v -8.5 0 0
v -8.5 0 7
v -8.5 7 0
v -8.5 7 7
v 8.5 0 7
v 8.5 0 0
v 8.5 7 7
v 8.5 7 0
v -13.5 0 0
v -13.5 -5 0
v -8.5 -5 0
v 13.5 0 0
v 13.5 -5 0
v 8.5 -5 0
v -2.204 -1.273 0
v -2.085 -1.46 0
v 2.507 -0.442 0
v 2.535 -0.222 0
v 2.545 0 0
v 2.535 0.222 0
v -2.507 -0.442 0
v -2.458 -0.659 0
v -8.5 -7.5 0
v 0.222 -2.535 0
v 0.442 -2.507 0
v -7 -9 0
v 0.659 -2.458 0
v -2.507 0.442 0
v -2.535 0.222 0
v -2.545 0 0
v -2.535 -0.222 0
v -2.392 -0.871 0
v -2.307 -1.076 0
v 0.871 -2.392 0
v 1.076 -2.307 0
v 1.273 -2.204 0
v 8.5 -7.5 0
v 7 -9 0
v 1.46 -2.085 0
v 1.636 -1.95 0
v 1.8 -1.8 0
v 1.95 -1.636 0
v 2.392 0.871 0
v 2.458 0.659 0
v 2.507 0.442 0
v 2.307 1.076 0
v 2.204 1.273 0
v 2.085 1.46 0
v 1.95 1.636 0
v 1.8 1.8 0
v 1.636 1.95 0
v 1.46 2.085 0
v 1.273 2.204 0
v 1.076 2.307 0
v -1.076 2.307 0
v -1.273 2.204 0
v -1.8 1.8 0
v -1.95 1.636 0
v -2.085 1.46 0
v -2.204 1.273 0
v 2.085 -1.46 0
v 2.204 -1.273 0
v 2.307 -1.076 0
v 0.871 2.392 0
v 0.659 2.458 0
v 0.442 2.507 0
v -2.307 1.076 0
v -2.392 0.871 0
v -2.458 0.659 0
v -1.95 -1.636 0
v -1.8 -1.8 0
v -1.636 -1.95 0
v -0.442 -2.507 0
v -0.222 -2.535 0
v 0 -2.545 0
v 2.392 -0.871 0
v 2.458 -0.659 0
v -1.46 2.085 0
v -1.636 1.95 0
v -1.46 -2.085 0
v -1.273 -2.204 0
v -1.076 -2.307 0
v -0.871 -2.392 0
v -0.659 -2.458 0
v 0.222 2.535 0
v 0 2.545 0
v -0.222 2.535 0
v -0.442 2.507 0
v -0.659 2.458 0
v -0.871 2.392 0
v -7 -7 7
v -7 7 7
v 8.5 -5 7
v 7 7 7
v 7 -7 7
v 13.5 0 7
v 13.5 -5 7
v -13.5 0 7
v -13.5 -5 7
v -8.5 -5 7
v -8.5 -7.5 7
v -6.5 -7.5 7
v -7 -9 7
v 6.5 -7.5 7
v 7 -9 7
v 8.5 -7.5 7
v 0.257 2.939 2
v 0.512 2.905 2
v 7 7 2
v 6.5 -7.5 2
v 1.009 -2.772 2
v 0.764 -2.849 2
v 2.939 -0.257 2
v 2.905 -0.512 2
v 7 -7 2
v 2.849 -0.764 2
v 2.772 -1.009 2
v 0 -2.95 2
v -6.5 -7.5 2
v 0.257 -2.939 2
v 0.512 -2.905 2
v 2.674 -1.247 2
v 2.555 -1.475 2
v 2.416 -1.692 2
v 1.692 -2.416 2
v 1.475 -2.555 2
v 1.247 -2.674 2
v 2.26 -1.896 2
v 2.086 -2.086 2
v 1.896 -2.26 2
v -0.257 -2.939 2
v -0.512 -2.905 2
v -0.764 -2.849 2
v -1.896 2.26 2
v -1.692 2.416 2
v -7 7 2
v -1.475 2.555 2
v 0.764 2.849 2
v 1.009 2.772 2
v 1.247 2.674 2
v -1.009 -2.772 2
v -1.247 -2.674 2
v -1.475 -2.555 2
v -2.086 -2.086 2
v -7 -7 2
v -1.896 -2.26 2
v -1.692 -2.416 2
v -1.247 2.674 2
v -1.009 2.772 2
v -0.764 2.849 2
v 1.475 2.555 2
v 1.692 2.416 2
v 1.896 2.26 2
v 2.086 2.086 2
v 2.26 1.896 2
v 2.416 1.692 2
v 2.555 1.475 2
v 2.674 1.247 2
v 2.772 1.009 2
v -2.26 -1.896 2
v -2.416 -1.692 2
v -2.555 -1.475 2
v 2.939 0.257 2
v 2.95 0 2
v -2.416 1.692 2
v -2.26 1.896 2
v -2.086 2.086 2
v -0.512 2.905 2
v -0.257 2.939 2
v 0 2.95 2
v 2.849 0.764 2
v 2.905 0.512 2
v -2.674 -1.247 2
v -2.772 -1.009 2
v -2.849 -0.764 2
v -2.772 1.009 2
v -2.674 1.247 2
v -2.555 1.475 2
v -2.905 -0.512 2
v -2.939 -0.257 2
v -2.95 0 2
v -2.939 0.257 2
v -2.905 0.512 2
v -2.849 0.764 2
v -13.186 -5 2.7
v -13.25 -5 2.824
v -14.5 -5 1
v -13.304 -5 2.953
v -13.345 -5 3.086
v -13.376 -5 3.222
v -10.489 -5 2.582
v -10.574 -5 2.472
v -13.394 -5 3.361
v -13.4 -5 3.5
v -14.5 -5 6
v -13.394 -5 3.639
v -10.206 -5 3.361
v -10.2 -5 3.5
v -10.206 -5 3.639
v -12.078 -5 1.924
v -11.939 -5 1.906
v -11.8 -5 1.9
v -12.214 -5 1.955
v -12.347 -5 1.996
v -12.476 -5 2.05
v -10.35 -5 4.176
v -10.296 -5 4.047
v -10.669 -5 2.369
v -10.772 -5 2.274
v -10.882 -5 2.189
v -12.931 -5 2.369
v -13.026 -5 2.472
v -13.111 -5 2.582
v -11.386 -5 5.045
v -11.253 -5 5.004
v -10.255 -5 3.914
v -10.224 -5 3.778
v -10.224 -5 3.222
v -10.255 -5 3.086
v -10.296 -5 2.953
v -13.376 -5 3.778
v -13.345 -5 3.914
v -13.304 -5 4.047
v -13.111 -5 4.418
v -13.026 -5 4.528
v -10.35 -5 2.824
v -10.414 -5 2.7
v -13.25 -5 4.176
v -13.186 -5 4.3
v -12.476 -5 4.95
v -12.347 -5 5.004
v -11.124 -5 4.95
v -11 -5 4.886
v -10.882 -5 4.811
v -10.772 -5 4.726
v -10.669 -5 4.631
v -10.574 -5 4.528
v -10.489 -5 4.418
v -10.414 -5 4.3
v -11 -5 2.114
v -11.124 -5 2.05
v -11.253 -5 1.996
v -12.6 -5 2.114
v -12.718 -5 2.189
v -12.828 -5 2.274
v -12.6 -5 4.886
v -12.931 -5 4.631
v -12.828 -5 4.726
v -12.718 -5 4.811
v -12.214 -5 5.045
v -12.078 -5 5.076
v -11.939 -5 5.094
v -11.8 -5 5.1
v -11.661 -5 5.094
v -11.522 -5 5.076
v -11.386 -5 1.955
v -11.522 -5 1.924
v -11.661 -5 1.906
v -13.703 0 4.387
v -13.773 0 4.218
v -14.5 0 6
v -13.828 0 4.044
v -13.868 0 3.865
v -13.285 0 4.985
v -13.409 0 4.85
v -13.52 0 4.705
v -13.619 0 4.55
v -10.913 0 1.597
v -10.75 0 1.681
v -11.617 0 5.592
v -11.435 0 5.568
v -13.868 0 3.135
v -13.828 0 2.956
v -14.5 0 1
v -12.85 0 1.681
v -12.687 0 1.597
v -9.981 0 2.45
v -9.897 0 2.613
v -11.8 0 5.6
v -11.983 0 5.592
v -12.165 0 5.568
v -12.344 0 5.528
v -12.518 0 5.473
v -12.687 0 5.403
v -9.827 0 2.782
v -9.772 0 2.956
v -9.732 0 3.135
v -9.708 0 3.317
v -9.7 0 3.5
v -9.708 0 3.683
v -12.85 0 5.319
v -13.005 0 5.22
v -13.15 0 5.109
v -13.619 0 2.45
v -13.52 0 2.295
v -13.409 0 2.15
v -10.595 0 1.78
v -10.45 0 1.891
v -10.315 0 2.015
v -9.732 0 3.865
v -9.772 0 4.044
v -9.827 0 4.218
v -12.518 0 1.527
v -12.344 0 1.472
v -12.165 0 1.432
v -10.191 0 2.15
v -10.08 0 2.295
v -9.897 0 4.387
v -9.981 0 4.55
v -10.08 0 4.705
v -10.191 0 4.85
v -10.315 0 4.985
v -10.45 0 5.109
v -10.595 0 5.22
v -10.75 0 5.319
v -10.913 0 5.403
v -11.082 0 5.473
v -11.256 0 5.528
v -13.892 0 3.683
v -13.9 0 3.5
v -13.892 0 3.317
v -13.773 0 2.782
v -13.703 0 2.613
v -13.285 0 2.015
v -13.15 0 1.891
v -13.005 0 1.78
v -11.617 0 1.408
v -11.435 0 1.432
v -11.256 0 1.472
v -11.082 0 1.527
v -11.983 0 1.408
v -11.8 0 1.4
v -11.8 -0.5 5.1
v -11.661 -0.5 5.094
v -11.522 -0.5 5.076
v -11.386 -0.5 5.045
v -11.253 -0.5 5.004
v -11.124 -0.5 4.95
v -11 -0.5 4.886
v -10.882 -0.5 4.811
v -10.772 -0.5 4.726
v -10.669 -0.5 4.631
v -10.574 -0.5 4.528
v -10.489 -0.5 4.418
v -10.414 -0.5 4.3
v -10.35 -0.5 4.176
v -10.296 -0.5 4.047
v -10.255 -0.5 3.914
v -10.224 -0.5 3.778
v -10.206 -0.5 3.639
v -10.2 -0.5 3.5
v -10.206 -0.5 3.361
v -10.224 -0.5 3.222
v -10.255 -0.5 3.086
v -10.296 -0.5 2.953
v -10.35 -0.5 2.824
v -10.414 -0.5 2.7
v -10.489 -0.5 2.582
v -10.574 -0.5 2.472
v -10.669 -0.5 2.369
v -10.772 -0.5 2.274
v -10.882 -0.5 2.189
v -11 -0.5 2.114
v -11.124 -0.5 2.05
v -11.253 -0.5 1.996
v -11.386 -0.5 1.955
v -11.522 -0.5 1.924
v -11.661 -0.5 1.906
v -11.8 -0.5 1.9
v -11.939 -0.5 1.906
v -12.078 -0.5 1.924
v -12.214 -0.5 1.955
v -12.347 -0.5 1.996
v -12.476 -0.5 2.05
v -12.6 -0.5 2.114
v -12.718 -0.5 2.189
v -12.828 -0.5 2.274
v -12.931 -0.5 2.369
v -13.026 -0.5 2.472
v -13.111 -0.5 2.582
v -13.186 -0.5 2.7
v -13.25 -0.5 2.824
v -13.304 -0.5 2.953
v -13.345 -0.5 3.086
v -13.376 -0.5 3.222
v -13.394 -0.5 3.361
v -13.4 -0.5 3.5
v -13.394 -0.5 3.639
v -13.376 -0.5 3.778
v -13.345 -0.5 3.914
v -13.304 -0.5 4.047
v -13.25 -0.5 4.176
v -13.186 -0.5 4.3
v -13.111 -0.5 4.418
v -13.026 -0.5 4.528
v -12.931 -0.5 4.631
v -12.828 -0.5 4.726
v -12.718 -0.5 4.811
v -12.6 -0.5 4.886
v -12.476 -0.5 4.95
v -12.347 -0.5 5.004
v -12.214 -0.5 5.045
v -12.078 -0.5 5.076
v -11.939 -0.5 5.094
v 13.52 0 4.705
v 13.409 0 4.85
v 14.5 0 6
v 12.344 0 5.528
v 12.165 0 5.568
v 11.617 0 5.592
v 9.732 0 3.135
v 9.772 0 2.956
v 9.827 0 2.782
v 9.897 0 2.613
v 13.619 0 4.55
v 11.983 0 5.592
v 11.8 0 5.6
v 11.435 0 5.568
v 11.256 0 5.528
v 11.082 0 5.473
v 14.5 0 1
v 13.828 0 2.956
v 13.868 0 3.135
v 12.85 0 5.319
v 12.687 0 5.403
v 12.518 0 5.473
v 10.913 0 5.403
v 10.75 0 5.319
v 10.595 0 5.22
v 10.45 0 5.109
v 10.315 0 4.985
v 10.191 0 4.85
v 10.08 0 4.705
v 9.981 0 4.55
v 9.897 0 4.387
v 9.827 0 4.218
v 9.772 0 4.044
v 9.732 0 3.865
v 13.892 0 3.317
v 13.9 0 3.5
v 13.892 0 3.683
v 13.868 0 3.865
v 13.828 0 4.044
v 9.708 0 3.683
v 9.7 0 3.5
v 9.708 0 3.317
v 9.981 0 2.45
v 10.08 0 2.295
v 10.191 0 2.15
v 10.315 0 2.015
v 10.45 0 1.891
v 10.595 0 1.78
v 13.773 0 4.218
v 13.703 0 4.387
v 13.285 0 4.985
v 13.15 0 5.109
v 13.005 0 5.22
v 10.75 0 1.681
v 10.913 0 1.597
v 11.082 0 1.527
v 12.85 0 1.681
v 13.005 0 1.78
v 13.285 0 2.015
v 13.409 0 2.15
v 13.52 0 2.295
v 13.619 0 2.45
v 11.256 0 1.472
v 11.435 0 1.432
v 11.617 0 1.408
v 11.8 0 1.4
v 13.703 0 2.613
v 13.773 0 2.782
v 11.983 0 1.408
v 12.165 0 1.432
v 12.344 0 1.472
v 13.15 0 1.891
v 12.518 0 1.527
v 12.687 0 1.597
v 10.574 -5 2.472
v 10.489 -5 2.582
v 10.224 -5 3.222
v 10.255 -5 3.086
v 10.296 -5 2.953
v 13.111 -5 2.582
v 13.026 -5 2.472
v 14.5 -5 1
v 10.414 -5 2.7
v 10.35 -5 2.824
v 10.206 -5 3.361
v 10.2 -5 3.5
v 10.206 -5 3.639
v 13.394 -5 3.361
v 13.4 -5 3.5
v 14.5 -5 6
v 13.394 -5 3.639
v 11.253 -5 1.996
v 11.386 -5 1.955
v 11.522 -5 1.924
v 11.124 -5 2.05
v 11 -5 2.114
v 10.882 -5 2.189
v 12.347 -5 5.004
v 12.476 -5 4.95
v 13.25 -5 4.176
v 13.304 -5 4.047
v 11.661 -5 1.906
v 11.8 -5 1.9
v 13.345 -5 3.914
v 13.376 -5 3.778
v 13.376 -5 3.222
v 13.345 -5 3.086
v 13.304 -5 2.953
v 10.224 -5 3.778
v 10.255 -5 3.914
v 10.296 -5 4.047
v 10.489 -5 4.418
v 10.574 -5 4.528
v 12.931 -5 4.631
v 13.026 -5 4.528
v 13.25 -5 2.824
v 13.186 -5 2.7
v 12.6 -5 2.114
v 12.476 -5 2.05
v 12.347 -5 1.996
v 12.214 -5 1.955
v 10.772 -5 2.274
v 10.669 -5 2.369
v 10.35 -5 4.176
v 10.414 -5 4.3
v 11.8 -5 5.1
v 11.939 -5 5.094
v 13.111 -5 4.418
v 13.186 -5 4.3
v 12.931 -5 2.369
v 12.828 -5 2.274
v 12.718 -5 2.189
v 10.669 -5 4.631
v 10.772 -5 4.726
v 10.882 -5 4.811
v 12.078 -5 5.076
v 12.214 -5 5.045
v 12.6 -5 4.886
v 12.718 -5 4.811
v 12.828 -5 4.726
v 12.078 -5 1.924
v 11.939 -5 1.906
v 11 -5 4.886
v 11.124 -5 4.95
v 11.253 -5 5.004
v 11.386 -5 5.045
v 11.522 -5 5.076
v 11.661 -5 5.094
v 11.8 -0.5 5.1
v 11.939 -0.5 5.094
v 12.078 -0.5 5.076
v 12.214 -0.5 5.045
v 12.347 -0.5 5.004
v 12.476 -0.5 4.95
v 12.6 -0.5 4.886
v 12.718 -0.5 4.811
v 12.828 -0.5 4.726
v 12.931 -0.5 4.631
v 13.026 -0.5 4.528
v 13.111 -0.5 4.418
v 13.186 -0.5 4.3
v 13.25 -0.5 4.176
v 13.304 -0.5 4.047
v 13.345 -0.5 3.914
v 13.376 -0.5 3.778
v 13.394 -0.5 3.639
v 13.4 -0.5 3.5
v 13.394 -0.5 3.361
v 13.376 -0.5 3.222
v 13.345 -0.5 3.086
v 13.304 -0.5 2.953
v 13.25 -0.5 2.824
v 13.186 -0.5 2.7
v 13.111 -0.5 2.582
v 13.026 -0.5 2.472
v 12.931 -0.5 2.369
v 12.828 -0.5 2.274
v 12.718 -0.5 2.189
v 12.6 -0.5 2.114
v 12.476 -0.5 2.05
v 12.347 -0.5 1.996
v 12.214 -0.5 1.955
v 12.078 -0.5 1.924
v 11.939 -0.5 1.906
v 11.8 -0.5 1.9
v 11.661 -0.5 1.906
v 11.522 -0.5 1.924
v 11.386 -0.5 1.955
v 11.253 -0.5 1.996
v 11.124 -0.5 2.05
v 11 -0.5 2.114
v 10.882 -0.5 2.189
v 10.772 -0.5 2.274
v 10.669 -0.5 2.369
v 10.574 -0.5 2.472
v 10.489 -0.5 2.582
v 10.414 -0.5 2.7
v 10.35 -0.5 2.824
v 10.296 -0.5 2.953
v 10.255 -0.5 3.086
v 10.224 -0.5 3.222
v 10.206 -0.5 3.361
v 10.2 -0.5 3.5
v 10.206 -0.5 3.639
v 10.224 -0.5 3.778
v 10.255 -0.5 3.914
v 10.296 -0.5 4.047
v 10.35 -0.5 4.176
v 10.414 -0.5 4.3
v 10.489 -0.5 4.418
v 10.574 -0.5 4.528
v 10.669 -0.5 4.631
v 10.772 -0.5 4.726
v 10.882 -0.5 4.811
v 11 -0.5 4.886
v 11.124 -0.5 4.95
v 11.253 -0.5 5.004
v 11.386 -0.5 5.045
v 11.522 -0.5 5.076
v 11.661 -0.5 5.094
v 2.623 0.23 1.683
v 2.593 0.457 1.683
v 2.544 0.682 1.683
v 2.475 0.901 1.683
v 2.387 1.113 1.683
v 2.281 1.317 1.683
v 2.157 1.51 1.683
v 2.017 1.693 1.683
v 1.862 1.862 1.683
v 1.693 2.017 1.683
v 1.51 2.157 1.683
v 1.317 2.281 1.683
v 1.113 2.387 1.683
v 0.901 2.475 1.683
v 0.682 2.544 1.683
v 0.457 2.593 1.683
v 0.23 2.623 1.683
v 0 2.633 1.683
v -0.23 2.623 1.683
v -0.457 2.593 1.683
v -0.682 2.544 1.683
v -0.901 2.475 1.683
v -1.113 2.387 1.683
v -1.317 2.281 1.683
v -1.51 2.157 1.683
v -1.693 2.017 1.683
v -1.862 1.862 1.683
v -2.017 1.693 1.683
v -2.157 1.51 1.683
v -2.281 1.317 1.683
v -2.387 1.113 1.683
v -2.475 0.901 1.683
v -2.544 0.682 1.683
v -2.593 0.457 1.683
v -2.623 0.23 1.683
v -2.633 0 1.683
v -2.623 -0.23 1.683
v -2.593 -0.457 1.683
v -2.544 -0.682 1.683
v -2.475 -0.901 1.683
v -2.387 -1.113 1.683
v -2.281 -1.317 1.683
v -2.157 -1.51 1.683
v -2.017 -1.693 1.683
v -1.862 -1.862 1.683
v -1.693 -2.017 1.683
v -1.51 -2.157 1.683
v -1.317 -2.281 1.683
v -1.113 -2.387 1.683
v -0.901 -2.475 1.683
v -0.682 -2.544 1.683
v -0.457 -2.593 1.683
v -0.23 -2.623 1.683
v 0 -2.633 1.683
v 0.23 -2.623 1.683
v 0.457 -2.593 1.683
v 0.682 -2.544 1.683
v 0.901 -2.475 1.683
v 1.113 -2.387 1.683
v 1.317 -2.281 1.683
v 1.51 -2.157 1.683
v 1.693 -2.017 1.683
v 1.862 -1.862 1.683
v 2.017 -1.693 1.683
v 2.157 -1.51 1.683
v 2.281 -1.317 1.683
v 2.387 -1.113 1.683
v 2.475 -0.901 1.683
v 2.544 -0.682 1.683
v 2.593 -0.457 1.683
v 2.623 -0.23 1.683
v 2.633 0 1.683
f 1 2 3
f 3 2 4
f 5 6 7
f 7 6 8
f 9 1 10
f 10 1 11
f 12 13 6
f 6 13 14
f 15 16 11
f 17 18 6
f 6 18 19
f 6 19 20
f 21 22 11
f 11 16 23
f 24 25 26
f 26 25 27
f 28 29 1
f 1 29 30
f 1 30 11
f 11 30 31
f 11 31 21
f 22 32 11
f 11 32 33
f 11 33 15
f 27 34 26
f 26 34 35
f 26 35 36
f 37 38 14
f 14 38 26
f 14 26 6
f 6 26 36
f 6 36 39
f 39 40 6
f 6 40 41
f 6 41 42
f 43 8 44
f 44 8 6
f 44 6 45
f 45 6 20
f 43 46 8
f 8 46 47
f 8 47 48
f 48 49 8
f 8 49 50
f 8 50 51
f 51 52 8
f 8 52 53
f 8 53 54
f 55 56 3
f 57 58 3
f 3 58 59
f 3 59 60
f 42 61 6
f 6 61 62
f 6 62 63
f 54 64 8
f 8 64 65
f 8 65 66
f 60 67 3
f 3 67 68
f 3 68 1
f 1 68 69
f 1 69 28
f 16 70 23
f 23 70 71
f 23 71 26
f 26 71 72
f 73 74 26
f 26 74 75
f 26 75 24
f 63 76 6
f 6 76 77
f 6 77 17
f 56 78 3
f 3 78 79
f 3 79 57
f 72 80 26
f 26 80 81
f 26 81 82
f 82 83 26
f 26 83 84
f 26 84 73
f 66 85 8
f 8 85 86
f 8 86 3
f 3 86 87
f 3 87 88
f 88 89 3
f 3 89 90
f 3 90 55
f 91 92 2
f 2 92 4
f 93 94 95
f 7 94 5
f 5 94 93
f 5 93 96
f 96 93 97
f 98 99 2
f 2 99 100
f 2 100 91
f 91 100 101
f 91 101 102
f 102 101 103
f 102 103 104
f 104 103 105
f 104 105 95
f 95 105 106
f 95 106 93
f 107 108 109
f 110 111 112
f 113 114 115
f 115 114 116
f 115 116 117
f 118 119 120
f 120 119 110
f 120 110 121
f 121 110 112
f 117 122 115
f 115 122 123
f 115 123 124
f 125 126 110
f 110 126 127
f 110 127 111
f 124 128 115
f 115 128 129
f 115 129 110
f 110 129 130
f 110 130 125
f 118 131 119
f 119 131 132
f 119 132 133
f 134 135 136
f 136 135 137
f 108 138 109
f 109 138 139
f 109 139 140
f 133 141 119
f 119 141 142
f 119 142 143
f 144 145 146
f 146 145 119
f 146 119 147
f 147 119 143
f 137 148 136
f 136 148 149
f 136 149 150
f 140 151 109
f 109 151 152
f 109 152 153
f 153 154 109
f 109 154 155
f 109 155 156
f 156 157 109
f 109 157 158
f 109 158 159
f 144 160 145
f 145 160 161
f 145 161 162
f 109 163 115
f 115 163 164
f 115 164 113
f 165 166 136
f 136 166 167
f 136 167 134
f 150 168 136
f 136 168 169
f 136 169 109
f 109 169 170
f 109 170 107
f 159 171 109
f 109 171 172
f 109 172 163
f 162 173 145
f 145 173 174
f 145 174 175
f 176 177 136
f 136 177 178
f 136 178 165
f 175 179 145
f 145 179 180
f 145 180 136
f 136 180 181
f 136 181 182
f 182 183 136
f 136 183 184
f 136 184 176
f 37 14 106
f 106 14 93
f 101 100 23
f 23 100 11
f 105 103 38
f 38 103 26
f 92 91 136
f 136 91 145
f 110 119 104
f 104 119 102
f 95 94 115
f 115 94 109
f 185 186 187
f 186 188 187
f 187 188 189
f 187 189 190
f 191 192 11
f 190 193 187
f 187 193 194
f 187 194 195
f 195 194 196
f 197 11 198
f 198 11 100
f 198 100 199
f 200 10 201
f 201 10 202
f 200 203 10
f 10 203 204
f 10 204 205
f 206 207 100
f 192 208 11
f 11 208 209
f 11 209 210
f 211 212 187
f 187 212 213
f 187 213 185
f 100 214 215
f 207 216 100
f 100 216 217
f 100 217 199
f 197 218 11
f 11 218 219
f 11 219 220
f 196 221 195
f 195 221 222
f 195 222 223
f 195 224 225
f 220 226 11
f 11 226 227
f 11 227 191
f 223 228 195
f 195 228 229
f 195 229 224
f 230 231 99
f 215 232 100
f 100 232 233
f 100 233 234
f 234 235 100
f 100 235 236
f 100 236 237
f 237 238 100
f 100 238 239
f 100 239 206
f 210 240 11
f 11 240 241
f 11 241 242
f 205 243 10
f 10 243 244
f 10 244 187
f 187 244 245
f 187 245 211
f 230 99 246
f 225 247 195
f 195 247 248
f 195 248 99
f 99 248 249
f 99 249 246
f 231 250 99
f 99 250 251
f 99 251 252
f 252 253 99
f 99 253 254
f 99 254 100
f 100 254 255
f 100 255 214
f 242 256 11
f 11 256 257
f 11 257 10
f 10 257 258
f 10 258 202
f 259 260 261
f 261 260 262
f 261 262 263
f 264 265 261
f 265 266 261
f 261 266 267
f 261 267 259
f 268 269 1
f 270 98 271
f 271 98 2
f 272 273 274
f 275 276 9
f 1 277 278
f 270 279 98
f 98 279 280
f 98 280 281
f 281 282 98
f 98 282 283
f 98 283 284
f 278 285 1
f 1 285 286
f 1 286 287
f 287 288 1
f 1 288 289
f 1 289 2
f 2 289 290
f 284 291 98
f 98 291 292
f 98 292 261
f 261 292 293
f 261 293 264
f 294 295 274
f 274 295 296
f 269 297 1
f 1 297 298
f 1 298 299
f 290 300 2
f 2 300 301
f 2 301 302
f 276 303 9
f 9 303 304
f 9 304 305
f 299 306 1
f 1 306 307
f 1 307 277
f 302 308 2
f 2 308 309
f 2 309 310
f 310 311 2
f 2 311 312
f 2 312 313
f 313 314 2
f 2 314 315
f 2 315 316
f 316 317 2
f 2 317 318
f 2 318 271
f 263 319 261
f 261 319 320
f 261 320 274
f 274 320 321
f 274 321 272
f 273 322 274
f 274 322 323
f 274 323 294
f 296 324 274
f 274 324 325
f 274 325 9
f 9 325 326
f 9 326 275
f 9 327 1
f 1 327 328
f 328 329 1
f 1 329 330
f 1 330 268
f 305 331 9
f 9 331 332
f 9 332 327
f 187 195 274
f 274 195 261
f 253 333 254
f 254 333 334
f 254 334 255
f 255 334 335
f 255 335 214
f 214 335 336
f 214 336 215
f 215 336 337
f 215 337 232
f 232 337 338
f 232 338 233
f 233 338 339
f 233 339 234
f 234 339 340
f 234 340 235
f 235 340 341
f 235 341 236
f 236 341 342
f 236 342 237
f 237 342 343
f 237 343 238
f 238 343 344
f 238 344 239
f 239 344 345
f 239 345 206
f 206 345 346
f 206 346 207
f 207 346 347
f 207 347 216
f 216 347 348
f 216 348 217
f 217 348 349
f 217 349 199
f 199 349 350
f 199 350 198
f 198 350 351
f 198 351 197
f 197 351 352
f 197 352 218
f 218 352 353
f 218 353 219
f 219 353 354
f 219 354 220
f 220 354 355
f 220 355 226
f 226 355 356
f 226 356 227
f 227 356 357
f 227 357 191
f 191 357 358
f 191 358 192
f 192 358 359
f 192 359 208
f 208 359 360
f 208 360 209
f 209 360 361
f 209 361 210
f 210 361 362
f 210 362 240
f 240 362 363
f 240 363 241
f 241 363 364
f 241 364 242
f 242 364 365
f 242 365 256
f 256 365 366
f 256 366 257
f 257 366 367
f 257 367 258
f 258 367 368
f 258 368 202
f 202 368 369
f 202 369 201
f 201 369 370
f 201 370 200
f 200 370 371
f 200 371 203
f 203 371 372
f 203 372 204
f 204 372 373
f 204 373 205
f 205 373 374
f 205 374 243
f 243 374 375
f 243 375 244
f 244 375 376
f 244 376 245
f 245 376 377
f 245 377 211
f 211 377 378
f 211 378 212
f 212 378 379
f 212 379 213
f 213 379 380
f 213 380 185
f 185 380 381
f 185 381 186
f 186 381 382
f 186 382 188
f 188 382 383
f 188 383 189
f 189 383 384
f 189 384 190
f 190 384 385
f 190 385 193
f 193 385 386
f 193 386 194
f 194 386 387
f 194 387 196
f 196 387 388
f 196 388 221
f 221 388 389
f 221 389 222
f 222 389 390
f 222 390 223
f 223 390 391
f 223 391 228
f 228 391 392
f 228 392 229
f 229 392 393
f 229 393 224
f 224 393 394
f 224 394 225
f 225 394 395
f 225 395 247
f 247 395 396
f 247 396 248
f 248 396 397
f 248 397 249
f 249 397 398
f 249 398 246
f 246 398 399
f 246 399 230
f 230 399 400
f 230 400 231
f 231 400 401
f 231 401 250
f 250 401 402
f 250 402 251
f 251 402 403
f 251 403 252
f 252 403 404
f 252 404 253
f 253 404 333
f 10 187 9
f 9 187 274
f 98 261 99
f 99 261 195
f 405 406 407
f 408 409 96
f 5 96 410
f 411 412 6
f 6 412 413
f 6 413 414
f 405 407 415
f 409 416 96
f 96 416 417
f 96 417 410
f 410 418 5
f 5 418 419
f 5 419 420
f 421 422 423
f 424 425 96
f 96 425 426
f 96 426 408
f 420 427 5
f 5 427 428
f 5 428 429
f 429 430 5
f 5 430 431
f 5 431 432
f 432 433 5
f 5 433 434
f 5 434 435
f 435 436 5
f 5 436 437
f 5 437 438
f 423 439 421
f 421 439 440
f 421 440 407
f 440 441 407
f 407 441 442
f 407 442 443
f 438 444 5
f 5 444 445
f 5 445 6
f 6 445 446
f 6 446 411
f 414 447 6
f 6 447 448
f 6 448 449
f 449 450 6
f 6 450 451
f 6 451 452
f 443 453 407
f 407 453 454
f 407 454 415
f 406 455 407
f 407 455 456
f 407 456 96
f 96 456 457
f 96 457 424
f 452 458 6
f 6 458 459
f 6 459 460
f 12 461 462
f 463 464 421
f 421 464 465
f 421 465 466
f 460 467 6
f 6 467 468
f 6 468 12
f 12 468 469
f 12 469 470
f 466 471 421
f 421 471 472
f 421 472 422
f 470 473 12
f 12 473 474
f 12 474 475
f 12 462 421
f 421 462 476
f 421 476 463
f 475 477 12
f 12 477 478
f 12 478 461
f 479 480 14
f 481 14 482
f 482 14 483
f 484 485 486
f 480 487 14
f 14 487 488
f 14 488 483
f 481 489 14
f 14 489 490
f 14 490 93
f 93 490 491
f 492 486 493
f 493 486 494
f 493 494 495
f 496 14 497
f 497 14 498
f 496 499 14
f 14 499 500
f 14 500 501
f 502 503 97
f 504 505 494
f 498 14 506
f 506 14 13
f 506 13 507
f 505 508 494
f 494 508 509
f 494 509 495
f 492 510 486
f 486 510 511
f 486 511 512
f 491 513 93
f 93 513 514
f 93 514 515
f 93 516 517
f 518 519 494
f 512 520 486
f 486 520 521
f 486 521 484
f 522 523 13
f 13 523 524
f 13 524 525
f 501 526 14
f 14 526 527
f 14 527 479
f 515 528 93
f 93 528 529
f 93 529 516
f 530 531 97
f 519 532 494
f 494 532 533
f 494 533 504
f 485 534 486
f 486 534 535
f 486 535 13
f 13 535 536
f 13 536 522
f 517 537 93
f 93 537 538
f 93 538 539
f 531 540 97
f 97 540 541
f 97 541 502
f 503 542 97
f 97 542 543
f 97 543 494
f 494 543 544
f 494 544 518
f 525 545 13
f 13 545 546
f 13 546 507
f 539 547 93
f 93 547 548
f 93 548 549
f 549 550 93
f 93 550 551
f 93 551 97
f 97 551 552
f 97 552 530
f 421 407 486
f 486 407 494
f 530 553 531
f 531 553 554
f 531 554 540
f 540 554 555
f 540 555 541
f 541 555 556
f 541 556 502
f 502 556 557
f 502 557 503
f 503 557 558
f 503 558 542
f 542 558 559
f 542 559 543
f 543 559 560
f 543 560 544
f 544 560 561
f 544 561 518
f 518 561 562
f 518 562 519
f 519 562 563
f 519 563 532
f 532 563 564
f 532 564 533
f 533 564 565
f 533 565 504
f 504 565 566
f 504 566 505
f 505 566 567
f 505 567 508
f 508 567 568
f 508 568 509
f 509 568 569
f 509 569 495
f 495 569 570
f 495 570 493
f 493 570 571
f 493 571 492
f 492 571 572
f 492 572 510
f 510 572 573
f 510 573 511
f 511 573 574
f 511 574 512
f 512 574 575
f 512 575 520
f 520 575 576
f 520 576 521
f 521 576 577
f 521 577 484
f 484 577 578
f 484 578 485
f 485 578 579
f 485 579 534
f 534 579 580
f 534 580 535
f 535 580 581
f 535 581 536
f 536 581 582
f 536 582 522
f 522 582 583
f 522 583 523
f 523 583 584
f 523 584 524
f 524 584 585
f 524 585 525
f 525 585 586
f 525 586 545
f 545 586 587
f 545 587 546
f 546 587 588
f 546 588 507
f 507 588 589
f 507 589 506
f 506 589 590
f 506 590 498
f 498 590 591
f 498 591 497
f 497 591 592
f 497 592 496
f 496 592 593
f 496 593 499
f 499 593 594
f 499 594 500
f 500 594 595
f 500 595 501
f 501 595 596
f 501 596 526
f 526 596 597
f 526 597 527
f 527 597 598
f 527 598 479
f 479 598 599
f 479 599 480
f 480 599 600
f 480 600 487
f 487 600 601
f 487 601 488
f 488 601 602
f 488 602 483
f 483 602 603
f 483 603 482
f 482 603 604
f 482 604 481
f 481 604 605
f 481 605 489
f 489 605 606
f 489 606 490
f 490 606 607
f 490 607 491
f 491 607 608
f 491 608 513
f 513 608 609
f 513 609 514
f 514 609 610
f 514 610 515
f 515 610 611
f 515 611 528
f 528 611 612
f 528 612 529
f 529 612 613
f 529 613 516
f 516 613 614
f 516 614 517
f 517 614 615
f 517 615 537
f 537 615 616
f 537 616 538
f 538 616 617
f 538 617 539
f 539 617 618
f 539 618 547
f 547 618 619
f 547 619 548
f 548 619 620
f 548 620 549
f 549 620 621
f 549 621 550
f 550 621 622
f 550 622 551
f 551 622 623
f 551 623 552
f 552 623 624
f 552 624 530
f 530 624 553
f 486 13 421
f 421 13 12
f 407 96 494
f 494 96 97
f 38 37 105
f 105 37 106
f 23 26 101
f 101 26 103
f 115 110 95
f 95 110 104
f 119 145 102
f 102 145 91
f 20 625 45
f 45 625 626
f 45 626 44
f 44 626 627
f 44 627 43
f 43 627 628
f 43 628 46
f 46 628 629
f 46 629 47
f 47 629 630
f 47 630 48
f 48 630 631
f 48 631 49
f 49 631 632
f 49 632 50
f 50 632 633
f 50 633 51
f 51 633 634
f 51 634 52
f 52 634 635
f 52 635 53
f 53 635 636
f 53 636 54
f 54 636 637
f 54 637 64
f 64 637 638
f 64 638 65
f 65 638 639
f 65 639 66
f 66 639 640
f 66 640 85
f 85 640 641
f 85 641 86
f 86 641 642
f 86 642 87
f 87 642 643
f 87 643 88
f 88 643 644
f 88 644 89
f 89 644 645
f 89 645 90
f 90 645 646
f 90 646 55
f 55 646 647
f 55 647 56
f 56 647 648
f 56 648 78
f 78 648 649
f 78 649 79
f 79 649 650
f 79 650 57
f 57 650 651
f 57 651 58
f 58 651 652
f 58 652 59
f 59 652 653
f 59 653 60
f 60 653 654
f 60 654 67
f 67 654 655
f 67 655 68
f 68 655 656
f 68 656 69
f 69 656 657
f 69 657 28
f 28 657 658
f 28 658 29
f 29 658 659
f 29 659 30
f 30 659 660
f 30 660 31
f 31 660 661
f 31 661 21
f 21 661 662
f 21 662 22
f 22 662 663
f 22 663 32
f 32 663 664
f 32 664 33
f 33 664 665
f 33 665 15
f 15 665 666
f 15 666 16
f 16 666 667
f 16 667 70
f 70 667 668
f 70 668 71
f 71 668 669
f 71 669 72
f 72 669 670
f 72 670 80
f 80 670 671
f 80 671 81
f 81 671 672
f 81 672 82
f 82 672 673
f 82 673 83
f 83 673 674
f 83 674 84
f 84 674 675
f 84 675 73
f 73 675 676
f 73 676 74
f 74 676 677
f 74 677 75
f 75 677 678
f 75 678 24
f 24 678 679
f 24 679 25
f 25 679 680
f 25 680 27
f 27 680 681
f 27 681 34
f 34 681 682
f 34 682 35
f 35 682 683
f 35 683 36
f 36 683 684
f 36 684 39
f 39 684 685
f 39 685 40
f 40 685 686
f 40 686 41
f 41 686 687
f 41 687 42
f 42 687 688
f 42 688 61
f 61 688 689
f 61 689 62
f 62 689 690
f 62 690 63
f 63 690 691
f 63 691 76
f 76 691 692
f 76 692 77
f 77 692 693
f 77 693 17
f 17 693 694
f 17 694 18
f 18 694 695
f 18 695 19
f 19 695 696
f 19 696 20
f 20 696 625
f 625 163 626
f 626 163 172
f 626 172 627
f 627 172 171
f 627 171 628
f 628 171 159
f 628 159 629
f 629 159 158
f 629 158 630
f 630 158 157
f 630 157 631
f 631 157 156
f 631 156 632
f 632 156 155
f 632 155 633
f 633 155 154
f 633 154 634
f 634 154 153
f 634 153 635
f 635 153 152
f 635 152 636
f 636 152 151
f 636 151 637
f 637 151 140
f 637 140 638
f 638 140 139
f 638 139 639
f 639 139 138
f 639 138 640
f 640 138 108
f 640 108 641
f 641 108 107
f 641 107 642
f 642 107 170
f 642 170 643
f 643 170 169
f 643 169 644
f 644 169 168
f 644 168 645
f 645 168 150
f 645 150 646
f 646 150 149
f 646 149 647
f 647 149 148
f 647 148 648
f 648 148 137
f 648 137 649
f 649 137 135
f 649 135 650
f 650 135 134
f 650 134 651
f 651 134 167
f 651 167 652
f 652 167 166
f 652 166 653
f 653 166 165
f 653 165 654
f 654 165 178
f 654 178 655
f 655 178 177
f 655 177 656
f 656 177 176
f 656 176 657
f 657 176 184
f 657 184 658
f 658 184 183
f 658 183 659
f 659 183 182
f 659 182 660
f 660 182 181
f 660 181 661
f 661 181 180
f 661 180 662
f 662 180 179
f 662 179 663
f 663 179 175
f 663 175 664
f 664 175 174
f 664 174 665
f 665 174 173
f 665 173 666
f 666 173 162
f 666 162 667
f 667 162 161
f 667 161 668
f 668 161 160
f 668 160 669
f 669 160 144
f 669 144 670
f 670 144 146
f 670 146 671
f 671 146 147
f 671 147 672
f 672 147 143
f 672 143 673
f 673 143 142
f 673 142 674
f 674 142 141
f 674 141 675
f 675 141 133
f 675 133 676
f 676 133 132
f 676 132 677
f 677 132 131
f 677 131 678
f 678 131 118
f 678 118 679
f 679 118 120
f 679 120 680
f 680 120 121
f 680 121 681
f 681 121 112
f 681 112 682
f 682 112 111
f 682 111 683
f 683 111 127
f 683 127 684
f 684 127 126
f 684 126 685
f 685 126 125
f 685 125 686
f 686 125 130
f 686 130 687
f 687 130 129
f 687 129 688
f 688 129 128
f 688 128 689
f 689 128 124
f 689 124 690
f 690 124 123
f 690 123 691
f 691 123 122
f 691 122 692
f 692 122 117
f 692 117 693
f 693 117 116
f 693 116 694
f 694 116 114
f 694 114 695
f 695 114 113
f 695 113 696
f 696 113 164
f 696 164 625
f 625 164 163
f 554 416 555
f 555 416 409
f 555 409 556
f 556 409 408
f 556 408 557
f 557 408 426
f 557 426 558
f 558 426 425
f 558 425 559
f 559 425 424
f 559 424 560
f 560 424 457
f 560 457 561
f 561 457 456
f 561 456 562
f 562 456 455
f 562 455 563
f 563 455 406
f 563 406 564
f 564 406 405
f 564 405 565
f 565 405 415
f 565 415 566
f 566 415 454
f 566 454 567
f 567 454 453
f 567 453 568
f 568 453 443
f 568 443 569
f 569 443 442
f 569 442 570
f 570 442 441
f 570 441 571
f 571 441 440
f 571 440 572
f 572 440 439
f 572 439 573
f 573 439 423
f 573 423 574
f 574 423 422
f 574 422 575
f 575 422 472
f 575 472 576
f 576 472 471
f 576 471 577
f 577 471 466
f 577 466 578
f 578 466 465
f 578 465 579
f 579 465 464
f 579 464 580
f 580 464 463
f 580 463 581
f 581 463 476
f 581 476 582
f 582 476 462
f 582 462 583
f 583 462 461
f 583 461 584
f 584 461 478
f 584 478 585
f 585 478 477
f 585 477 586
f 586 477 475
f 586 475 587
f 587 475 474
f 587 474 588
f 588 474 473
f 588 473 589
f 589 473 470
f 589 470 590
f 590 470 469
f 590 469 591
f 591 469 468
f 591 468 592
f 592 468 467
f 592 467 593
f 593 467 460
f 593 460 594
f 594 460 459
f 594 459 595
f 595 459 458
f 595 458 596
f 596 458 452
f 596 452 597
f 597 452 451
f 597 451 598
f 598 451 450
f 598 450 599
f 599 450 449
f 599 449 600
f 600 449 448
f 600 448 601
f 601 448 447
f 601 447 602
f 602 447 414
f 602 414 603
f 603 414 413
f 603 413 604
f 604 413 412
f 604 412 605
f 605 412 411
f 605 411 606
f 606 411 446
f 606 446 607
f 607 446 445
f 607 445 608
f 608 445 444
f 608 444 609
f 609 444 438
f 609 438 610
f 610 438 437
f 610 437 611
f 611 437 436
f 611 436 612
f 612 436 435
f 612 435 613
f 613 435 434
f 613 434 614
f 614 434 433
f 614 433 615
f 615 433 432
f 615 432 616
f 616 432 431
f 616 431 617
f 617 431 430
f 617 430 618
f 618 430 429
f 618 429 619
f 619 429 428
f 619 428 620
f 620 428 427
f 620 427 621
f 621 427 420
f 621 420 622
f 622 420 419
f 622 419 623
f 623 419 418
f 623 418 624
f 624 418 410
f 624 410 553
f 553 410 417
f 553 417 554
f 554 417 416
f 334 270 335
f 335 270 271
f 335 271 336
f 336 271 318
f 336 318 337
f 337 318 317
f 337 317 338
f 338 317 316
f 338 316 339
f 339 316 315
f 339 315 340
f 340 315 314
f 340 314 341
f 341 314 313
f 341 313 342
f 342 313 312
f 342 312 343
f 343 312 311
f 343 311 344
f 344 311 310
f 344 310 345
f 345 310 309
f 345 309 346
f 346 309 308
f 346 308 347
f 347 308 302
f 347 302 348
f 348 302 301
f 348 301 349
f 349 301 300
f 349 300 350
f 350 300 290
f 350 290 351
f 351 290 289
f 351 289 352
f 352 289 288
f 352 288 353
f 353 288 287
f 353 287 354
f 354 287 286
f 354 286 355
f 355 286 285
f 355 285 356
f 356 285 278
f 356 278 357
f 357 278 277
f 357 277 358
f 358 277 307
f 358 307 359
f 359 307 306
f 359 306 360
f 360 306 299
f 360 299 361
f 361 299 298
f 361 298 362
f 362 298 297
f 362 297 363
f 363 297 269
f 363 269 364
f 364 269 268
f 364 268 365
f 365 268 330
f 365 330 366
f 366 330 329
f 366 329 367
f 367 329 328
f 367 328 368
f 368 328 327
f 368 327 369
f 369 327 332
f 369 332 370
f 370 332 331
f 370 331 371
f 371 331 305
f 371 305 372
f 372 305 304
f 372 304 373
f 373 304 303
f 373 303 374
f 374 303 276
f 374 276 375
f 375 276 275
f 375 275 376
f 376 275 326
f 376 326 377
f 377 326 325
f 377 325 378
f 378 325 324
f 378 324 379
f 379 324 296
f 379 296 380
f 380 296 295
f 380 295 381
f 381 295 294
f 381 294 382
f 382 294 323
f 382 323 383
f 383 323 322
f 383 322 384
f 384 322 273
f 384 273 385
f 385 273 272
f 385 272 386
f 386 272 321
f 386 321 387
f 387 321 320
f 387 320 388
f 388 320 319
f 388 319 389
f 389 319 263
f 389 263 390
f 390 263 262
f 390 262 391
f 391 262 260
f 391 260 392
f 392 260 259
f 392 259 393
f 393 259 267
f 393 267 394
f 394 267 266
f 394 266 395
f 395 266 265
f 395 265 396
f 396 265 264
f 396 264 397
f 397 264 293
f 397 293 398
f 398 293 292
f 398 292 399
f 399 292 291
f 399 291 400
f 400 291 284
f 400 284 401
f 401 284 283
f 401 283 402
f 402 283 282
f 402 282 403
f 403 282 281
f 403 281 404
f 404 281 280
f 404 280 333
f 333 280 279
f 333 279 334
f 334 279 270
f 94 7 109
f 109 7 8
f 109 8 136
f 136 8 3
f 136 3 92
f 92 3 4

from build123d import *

# Parameters (mm, degrees)
ESQUISSE1_W                  = 17
ESQUISSE1_H                  = 18
BOSS_EXTRU_1_DEPTH           = 2
ESQUISSE2_W                  = 17
ESQUISSE2_H                  = 18
ESQUISSE2_W_2                = 14
ESQUISSE2_H_2                = 15
BOSS_EXTRU_2_DEPTH           = 5
ESQUISSE3_W                  = 7
ESQUISSE3_H                  = 5
BOSS_EXTRU_3_DEPTH           = 6
ESQUISSE4_R                  = 1.6
ENL_V_MAT_EXTRU_1_DEPTH      = 19.445866746
CHANFREIN1_SIZE              = 1
CHANFREIN1_OF_SYM_TRIE2_SIZE = 1
CHANFREIN2_SIZE              = 1.5
CHANFREIN3_SIZE              = 0.5
ESQUISSE5_R                  = 2.65
ENL_V_MAT_EXTRU_2_DEPTH      = 2
ENL_V_MAT_EXTRU_2_DRAFT      = -3
CHANFREIN4_SIZE              = 0.3
CHANFREIN4_SIZE2             = 0.317026351
CHANFREIN5_SIZE              = 0.5
ESQUISSE6_W                  = 25.293651759
ESQUISSE6_H                  = 13.130697886
ENL_V_MAT_EXTRU_3_DEPTH      = 2


with BuildPart() as part:
    # Esquisse1 → Boss.-Extru.1 (new body)
    with BuildSketch(Plane.XY):
        Rectangle(ESQUISSE1_W, ESQUISSE1_H)
    extrude(amount=BOSS_EXTRU_1_DEPTH)

    # Esquisse2 → Boss.-Extru.2 (add)
    with BuildSketch(Plane.XY.offset(2)):
        Rectangle(ESQUISSE2_W, ESQUISSE2_H)
        Rectangle(ESQUISSE2_W_2, ESQUISSE2_H_2, mode=Mode.SUBTRACT)
    extrude(amount=BOSS_EXTRU_2_DEPTH)

    # Esquisse3 → Boss.-Extru.3 (add)
    with BuildSketch(Plane.ZY.offset(8.5)):
        with Locations((3.5, -2.5)):
            Rectangle(ESQUISSE3_W, ESQUISSE3_H)
    boss_extru_3 = extrude(amount=BOSS_EXTRU_3_DEPTH)

    # Esquisse4 → Enlèv. mat.-Extru.1 (cut, through all)
    with BuildSketch(Plane(origin=(0, 0, 0), x_dir=(1, 0, 0), z_dir=(0, 1, 0))):
        with Locations(Location((-11.8, -3.5, 0), (0, 0, 270))):
            Circle(ESQUISSE4_R)
    enl_v_mat_extru_1 = extrude(amount=-ENL_V_MAT_EXTRU_1_DEPTH, mode=Mode.SUBTRACT)

    # Chanfrein1
    chanfrein1_edges = [part.edges().sort_by_distance(p)[0] for p in [
        (-14.5, -2.5, 0),
        (-14.5, -2.5, 7),
    ]]
    chamfer(chanfrein1_edges, length=CHANFREIN1_SIZE)

    # Symétrie2: Boss.-Extru.3, Enlèv. mat.-Extru.1 across plane
    add(boss_extru_3.mirror(Plane(origin=(0, 0, 0), x_dir=(0, 0, 1), z_dir=(1, 0, 0))))
    add(enl_v_mat_extru_1.mirror(Plane(origin=(0, 0, 0), x_dir=(0, 0, 1), z_dir=(1, 0, 0))), mode=Mode.SUBTRACT)

    # Chanfrein1 of Symétrie2
    chanfrein1_of_sym_trie2_edges = [part.edges().sort_by_distance(p)[0] for p in [
        (14.5, -2.5, 0),
        (14.5, -2.5, 7),
    ]]
    chamfer(chanfrein1_of_sym_trie2_edges, length=CHANFREIN1_OF_SYM_TRIE2_SIZE)

    # Chanfrein2
    chanfrein2_edges = [part.edges().sort_by_distance(p)[0] for p in [
        (-8.5, 9, 3.5),
        (8.5, 9, 3.5),
        (8.5, -9, 3.5),
        (-8.5, -9, 3.5),
    ]]
    chamfer(chanfrein2_edges, length=CHANFREIN2_SIZE)

    # Chanfrein3
    chanfrein3_edges = [part.edges().sort_by_distance(p)[0] for p in [
        (-7, -7.5, 4.5),
        (7, -7.5, 4.5),
        (7, 7.5, 4.5),
        (-7, 7.5, 4.5),
    ]]
    chamfer(chanfrein3_edges, length=CHANFREIN3_SIZE)


with BuildPart() as enl_v_mat_extru_2_tool:
    # Esquisse5 → Enlèv. mat.-Extru.2 (with draft: the straight prism first)
    with BuildSketch(Plane.XY.offset(2)):
        Circle(ESQUISSE5_R)
    extrude(amount=-ENL_V_MAT_EXTRU_2_DEPTH)
    # Enlèv. mat.-Extru.2: the draft: its side faces are tilted about the plane it starts from
    enl_v_mat_extru_2_sides = [enl_v_mat_extru_2_tool.faces().sort_by_distance(p)[0] for p in [
        (-2.65, 0, 1),
    ]]
    draft(enl_v_mat_extru_2_sides, Plane.XY.offset(2), ENL_V_MAT_EXTRU_2_DRAFT)


with BuildPart() as part_1:
    add(part.part)

    # Enlèv. mat.-Extru.2: cut by enl_v_mat_extru_2_tool
    add(enl_v_mat_extru_2_tool.part, mode=Mode.SUBTRACT)

    # Chanfrein4
    chanfrein4_edges = [part_1.edges().sort_by_distance(p)[0] for p in [
        (-2.65, 0, 2),
    ]]
    chanfrein4_side = [part_1.faces().sort_by_distance(p)[0] for p in [
        (0, -7.294817155, 2),
    ]]
    chamfer(chanfrein4_edges, length=CHANFREIN4_SIZE, length2=CHANFREIN4_SIZE2, reference=chanfrein4_side[0])

    # Chanfrein5
    chanfrein5_edges = [part_1.edges().sort_by_distance(p)[0] for p in [
        (-11.8, 0, 1.9),
        (11.8, 0, 1.9),
    ]]
    chamfer(chanfrein5_edges, length=CHANFREIN5_SIZE)

    # Esquisse6 → Enlèv. mat.-Extru.3 (cut)
    with BuildSketch(Plane(origin=(0, 9, 0), x_dir=(1, 0, 0), z_dir=(0, 1, 0))):
        with Locations((1.808818071, -4.181872969)):
            Rectangle(ESQUISSE6_W, ESQUISSE6_H)
    extrude(amount=-ENL_V_MAT_EXTRU_3_DEPTH, mode=Mode.SUBTRACT)


solid = part_1.part
